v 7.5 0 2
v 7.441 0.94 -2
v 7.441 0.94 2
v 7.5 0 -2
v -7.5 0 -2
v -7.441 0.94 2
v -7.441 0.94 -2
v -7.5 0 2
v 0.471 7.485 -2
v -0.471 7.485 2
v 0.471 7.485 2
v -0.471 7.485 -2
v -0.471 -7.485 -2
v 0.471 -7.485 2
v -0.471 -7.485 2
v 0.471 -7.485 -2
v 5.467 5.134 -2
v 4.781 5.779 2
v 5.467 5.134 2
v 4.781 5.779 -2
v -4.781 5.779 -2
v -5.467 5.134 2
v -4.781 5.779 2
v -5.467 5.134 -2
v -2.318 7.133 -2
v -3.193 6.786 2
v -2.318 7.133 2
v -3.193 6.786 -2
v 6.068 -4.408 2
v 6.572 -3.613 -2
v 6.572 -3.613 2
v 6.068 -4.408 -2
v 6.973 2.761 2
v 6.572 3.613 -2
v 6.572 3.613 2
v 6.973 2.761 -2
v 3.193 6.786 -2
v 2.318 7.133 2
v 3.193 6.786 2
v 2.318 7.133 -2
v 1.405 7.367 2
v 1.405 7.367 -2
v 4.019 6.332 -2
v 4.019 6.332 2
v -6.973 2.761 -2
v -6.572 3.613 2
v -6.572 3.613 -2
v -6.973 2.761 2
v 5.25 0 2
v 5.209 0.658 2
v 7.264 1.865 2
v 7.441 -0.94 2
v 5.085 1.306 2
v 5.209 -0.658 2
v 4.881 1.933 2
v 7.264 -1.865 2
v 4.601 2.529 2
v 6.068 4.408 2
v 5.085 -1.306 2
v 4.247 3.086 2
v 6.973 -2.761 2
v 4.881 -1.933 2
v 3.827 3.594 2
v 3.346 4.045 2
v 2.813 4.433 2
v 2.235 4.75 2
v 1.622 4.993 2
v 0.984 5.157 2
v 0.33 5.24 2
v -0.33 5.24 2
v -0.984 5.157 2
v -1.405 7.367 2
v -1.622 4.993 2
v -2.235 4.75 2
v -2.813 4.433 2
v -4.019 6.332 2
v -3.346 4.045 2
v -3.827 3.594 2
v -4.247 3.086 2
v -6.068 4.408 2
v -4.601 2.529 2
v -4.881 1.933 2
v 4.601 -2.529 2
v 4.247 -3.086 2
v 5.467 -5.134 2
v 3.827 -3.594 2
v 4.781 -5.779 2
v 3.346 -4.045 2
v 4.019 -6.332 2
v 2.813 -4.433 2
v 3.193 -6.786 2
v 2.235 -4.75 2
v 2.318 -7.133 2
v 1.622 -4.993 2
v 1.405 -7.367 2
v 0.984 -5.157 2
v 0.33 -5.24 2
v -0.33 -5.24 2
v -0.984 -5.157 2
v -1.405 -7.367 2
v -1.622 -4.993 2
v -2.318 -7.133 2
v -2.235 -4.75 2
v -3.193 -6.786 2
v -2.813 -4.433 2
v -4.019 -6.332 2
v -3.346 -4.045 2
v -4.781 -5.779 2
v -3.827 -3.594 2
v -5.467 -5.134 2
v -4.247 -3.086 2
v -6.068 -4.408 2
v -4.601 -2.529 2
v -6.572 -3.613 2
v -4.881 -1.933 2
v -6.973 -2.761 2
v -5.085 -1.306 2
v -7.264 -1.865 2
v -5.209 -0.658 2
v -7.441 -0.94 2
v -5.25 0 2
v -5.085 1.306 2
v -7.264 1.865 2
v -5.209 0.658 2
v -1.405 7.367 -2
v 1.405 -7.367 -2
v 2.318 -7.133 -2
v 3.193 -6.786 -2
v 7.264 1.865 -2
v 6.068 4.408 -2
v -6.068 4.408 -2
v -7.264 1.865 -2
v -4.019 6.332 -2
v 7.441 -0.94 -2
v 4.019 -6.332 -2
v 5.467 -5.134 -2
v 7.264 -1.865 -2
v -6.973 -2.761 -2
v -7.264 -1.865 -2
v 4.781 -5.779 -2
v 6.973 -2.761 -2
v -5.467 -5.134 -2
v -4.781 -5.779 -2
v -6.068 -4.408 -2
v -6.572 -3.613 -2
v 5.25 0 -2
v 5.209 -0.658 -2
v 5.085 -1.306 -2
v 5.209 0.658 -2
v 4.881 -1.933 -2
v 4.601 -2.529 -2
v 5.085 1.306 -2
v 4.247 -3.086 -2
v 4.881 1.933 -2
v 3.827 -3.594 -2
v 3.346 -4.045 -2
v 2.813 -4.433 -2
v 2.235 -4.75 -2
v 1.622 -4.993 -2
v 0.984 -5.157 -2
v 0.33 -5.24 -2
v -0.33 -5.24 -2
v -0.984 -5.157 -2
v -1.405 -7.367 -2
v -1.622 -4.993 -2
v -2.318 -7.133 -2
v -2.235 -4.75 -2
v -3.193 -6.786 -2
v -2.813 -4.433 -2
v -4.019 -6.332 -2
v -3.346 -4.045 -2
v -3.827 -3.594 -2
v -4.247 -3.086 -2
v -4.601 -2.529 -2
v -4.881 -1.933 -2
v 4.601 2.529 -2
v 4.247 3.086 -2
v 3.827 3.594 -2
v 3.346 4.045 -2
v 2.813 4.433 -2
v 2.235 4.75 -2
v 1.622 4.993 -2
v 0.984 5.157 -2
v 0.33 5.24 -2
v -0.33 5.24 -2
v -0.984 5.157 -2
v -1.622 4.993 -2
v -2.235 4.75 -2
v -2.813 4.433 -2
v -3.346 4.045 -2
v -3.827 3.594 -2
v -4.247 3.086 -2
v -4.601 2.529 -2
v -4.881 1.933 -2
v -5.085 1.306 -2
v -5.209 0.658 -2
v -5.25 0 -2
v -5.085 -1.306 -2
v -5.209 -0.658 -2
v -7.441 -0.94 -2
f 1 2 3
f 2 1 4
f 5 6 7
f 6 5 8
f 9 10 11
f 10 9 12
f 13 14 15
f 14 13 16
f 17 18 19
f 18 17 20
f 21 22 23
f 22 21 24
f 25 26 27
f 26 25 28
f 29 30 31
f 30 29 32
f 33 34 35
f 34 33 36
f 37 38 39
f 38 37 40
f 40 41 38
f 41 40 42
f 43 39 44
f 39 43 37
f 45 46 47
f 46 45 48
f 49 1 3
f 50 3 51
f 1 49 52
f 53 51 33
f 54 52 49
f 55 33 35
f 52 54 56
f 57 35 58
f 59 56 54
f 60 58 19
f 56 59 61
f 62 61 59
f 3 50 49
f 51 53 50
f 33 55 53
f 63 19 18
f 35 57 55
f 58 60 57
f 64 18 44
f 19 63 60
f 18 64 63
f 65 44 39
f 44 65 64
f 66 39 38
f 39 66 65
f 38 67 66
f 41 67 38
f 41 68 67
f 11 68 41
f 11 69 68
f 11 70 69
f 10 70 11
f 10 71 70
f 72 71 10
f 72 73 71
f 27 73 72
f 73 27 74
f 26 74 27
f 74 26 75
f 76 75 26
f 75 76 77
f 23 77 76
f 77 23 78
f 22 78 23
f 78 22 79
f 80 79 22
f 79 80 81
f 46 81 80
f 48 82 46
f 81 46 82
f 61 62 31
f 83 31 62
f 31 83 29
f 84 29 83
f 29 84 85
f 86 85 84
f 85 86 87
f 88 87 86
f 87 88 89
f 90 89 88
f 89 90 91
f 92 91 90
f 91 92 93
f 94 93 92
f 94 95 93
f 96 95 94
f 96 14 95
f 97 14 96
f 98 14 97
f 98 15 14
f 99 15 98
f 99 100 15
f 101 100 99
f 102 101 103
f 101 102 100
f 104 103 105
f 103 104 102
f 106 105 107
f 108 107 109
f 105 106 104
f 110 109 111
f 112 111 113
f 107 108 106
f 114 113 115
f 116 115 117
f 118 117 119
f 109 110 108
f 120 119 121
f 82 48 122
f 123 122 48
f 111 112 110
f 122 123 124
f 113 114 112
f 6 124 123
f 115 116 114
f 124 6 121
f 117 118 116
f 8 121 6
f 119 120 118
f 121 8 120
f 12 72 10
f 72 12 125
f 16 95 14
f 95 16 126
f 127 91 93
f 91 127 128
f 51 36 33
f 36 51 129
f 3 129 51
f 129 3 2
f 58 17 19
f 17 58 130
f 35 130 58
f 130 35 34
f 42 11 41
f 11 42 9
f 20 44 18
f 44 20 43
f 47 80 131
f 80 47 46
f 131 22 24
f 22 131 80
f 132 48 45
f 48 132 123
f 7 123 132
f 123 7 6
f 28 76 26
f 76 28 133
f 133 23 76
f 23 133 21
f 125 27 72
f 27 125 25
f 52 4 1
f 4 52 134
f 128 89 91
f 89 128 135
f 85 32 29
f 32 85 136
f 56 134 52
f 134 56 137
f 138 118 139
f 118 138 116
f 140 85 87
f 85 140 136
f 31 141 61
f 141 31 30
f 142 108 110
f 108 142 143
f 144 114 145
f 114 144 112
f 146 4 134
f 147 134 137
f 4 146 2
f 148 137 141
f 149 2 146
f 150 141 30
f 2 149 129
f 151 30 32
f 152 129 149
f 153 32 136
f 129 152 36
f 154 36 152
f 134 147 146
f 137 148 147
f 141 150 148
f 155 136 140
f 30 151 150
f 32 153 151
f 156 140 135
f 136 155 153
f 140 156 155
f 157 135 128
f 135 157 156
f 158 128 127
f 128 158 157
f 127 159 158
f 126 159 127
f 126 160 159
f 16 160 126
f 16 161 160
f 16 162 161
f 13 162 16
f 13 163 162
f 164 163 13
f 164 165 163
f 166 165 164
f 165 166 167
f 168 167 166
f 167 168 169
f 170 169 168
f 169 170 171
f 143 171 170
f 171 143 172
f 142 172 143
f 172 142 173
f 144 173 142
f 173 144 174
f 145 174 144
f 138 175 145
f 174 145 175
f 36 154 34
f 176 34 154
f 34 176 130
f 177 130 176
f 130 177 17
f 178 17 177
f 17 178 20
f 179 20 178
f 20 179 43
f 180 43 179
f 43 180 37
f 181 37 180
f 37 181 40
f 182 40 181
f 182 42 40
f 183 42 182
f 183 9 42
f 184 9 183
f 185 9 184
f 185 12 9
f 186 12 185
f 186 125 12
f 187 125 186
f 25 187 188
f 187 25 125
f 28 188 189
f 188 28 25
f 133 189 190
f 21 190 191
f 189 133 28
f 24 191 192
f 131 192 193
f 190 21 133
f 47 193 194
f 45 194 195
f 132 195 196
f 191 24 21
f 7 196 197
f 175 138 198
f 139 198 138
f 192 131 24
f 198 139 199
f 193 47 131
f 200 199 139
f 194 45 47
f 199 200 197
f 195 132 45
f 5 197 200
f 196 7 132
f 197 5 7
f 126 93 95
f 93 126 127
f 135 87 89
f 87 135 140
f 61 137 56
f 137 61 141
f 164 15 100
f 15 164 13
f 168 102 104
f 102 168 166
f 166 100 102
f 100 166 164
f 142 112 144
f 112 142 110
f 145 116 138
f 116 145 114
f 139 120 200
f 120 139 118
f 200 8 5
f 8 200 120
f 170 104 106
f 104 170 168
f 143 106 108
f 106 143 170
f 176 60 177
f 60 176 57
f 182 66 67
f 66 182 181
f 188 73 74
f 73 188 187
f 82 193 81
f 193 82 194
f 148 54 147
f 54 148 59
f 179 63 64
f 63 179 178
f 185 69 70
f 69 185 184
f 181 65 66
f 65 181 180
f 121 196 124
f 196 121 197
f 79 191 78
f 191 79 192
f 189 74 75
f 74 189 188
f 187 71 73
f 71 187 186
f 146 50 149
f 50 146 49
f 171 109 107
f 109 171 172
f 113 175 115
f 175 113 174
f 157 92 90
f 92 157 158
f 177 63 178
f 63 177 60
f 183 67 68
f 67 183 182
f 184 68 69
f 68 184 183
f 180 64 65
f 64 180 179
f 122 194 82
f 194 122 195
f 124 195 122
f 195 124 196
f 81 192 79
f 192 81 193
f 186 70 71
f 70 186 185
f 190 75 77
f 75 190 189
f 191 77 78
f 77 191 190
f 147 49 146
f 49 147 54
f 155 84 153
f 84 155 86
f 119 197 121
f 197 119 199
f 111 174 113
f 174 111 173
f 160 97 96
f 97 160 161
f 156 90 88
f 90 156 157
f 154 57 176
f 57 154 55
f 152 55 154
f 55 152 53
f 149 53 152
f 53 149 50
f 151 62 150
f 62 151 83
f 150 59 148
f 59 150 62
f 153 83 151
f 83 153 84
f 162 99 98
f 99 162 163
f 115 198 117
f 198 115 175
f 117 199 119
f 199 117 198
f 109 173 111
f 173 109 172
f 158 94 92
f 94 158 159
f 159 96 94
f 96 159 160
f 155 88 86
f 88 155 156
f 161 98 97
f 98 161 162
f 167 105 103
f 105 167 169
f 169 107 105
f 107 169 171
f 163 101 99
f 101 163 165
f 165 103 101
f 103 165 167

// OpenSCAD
$fn = 50;


difference() {
	union() {
		translate(v = [0, 0, -2.0000000000]) {
			cylinder(h = 4, r = 7.5000000000);
		}
	}
	union() {
		translate(v = [0, 0, -100.0000000000]) {
			cylinder(h = 200, r = 5.2500000000);
		}
	}
}
